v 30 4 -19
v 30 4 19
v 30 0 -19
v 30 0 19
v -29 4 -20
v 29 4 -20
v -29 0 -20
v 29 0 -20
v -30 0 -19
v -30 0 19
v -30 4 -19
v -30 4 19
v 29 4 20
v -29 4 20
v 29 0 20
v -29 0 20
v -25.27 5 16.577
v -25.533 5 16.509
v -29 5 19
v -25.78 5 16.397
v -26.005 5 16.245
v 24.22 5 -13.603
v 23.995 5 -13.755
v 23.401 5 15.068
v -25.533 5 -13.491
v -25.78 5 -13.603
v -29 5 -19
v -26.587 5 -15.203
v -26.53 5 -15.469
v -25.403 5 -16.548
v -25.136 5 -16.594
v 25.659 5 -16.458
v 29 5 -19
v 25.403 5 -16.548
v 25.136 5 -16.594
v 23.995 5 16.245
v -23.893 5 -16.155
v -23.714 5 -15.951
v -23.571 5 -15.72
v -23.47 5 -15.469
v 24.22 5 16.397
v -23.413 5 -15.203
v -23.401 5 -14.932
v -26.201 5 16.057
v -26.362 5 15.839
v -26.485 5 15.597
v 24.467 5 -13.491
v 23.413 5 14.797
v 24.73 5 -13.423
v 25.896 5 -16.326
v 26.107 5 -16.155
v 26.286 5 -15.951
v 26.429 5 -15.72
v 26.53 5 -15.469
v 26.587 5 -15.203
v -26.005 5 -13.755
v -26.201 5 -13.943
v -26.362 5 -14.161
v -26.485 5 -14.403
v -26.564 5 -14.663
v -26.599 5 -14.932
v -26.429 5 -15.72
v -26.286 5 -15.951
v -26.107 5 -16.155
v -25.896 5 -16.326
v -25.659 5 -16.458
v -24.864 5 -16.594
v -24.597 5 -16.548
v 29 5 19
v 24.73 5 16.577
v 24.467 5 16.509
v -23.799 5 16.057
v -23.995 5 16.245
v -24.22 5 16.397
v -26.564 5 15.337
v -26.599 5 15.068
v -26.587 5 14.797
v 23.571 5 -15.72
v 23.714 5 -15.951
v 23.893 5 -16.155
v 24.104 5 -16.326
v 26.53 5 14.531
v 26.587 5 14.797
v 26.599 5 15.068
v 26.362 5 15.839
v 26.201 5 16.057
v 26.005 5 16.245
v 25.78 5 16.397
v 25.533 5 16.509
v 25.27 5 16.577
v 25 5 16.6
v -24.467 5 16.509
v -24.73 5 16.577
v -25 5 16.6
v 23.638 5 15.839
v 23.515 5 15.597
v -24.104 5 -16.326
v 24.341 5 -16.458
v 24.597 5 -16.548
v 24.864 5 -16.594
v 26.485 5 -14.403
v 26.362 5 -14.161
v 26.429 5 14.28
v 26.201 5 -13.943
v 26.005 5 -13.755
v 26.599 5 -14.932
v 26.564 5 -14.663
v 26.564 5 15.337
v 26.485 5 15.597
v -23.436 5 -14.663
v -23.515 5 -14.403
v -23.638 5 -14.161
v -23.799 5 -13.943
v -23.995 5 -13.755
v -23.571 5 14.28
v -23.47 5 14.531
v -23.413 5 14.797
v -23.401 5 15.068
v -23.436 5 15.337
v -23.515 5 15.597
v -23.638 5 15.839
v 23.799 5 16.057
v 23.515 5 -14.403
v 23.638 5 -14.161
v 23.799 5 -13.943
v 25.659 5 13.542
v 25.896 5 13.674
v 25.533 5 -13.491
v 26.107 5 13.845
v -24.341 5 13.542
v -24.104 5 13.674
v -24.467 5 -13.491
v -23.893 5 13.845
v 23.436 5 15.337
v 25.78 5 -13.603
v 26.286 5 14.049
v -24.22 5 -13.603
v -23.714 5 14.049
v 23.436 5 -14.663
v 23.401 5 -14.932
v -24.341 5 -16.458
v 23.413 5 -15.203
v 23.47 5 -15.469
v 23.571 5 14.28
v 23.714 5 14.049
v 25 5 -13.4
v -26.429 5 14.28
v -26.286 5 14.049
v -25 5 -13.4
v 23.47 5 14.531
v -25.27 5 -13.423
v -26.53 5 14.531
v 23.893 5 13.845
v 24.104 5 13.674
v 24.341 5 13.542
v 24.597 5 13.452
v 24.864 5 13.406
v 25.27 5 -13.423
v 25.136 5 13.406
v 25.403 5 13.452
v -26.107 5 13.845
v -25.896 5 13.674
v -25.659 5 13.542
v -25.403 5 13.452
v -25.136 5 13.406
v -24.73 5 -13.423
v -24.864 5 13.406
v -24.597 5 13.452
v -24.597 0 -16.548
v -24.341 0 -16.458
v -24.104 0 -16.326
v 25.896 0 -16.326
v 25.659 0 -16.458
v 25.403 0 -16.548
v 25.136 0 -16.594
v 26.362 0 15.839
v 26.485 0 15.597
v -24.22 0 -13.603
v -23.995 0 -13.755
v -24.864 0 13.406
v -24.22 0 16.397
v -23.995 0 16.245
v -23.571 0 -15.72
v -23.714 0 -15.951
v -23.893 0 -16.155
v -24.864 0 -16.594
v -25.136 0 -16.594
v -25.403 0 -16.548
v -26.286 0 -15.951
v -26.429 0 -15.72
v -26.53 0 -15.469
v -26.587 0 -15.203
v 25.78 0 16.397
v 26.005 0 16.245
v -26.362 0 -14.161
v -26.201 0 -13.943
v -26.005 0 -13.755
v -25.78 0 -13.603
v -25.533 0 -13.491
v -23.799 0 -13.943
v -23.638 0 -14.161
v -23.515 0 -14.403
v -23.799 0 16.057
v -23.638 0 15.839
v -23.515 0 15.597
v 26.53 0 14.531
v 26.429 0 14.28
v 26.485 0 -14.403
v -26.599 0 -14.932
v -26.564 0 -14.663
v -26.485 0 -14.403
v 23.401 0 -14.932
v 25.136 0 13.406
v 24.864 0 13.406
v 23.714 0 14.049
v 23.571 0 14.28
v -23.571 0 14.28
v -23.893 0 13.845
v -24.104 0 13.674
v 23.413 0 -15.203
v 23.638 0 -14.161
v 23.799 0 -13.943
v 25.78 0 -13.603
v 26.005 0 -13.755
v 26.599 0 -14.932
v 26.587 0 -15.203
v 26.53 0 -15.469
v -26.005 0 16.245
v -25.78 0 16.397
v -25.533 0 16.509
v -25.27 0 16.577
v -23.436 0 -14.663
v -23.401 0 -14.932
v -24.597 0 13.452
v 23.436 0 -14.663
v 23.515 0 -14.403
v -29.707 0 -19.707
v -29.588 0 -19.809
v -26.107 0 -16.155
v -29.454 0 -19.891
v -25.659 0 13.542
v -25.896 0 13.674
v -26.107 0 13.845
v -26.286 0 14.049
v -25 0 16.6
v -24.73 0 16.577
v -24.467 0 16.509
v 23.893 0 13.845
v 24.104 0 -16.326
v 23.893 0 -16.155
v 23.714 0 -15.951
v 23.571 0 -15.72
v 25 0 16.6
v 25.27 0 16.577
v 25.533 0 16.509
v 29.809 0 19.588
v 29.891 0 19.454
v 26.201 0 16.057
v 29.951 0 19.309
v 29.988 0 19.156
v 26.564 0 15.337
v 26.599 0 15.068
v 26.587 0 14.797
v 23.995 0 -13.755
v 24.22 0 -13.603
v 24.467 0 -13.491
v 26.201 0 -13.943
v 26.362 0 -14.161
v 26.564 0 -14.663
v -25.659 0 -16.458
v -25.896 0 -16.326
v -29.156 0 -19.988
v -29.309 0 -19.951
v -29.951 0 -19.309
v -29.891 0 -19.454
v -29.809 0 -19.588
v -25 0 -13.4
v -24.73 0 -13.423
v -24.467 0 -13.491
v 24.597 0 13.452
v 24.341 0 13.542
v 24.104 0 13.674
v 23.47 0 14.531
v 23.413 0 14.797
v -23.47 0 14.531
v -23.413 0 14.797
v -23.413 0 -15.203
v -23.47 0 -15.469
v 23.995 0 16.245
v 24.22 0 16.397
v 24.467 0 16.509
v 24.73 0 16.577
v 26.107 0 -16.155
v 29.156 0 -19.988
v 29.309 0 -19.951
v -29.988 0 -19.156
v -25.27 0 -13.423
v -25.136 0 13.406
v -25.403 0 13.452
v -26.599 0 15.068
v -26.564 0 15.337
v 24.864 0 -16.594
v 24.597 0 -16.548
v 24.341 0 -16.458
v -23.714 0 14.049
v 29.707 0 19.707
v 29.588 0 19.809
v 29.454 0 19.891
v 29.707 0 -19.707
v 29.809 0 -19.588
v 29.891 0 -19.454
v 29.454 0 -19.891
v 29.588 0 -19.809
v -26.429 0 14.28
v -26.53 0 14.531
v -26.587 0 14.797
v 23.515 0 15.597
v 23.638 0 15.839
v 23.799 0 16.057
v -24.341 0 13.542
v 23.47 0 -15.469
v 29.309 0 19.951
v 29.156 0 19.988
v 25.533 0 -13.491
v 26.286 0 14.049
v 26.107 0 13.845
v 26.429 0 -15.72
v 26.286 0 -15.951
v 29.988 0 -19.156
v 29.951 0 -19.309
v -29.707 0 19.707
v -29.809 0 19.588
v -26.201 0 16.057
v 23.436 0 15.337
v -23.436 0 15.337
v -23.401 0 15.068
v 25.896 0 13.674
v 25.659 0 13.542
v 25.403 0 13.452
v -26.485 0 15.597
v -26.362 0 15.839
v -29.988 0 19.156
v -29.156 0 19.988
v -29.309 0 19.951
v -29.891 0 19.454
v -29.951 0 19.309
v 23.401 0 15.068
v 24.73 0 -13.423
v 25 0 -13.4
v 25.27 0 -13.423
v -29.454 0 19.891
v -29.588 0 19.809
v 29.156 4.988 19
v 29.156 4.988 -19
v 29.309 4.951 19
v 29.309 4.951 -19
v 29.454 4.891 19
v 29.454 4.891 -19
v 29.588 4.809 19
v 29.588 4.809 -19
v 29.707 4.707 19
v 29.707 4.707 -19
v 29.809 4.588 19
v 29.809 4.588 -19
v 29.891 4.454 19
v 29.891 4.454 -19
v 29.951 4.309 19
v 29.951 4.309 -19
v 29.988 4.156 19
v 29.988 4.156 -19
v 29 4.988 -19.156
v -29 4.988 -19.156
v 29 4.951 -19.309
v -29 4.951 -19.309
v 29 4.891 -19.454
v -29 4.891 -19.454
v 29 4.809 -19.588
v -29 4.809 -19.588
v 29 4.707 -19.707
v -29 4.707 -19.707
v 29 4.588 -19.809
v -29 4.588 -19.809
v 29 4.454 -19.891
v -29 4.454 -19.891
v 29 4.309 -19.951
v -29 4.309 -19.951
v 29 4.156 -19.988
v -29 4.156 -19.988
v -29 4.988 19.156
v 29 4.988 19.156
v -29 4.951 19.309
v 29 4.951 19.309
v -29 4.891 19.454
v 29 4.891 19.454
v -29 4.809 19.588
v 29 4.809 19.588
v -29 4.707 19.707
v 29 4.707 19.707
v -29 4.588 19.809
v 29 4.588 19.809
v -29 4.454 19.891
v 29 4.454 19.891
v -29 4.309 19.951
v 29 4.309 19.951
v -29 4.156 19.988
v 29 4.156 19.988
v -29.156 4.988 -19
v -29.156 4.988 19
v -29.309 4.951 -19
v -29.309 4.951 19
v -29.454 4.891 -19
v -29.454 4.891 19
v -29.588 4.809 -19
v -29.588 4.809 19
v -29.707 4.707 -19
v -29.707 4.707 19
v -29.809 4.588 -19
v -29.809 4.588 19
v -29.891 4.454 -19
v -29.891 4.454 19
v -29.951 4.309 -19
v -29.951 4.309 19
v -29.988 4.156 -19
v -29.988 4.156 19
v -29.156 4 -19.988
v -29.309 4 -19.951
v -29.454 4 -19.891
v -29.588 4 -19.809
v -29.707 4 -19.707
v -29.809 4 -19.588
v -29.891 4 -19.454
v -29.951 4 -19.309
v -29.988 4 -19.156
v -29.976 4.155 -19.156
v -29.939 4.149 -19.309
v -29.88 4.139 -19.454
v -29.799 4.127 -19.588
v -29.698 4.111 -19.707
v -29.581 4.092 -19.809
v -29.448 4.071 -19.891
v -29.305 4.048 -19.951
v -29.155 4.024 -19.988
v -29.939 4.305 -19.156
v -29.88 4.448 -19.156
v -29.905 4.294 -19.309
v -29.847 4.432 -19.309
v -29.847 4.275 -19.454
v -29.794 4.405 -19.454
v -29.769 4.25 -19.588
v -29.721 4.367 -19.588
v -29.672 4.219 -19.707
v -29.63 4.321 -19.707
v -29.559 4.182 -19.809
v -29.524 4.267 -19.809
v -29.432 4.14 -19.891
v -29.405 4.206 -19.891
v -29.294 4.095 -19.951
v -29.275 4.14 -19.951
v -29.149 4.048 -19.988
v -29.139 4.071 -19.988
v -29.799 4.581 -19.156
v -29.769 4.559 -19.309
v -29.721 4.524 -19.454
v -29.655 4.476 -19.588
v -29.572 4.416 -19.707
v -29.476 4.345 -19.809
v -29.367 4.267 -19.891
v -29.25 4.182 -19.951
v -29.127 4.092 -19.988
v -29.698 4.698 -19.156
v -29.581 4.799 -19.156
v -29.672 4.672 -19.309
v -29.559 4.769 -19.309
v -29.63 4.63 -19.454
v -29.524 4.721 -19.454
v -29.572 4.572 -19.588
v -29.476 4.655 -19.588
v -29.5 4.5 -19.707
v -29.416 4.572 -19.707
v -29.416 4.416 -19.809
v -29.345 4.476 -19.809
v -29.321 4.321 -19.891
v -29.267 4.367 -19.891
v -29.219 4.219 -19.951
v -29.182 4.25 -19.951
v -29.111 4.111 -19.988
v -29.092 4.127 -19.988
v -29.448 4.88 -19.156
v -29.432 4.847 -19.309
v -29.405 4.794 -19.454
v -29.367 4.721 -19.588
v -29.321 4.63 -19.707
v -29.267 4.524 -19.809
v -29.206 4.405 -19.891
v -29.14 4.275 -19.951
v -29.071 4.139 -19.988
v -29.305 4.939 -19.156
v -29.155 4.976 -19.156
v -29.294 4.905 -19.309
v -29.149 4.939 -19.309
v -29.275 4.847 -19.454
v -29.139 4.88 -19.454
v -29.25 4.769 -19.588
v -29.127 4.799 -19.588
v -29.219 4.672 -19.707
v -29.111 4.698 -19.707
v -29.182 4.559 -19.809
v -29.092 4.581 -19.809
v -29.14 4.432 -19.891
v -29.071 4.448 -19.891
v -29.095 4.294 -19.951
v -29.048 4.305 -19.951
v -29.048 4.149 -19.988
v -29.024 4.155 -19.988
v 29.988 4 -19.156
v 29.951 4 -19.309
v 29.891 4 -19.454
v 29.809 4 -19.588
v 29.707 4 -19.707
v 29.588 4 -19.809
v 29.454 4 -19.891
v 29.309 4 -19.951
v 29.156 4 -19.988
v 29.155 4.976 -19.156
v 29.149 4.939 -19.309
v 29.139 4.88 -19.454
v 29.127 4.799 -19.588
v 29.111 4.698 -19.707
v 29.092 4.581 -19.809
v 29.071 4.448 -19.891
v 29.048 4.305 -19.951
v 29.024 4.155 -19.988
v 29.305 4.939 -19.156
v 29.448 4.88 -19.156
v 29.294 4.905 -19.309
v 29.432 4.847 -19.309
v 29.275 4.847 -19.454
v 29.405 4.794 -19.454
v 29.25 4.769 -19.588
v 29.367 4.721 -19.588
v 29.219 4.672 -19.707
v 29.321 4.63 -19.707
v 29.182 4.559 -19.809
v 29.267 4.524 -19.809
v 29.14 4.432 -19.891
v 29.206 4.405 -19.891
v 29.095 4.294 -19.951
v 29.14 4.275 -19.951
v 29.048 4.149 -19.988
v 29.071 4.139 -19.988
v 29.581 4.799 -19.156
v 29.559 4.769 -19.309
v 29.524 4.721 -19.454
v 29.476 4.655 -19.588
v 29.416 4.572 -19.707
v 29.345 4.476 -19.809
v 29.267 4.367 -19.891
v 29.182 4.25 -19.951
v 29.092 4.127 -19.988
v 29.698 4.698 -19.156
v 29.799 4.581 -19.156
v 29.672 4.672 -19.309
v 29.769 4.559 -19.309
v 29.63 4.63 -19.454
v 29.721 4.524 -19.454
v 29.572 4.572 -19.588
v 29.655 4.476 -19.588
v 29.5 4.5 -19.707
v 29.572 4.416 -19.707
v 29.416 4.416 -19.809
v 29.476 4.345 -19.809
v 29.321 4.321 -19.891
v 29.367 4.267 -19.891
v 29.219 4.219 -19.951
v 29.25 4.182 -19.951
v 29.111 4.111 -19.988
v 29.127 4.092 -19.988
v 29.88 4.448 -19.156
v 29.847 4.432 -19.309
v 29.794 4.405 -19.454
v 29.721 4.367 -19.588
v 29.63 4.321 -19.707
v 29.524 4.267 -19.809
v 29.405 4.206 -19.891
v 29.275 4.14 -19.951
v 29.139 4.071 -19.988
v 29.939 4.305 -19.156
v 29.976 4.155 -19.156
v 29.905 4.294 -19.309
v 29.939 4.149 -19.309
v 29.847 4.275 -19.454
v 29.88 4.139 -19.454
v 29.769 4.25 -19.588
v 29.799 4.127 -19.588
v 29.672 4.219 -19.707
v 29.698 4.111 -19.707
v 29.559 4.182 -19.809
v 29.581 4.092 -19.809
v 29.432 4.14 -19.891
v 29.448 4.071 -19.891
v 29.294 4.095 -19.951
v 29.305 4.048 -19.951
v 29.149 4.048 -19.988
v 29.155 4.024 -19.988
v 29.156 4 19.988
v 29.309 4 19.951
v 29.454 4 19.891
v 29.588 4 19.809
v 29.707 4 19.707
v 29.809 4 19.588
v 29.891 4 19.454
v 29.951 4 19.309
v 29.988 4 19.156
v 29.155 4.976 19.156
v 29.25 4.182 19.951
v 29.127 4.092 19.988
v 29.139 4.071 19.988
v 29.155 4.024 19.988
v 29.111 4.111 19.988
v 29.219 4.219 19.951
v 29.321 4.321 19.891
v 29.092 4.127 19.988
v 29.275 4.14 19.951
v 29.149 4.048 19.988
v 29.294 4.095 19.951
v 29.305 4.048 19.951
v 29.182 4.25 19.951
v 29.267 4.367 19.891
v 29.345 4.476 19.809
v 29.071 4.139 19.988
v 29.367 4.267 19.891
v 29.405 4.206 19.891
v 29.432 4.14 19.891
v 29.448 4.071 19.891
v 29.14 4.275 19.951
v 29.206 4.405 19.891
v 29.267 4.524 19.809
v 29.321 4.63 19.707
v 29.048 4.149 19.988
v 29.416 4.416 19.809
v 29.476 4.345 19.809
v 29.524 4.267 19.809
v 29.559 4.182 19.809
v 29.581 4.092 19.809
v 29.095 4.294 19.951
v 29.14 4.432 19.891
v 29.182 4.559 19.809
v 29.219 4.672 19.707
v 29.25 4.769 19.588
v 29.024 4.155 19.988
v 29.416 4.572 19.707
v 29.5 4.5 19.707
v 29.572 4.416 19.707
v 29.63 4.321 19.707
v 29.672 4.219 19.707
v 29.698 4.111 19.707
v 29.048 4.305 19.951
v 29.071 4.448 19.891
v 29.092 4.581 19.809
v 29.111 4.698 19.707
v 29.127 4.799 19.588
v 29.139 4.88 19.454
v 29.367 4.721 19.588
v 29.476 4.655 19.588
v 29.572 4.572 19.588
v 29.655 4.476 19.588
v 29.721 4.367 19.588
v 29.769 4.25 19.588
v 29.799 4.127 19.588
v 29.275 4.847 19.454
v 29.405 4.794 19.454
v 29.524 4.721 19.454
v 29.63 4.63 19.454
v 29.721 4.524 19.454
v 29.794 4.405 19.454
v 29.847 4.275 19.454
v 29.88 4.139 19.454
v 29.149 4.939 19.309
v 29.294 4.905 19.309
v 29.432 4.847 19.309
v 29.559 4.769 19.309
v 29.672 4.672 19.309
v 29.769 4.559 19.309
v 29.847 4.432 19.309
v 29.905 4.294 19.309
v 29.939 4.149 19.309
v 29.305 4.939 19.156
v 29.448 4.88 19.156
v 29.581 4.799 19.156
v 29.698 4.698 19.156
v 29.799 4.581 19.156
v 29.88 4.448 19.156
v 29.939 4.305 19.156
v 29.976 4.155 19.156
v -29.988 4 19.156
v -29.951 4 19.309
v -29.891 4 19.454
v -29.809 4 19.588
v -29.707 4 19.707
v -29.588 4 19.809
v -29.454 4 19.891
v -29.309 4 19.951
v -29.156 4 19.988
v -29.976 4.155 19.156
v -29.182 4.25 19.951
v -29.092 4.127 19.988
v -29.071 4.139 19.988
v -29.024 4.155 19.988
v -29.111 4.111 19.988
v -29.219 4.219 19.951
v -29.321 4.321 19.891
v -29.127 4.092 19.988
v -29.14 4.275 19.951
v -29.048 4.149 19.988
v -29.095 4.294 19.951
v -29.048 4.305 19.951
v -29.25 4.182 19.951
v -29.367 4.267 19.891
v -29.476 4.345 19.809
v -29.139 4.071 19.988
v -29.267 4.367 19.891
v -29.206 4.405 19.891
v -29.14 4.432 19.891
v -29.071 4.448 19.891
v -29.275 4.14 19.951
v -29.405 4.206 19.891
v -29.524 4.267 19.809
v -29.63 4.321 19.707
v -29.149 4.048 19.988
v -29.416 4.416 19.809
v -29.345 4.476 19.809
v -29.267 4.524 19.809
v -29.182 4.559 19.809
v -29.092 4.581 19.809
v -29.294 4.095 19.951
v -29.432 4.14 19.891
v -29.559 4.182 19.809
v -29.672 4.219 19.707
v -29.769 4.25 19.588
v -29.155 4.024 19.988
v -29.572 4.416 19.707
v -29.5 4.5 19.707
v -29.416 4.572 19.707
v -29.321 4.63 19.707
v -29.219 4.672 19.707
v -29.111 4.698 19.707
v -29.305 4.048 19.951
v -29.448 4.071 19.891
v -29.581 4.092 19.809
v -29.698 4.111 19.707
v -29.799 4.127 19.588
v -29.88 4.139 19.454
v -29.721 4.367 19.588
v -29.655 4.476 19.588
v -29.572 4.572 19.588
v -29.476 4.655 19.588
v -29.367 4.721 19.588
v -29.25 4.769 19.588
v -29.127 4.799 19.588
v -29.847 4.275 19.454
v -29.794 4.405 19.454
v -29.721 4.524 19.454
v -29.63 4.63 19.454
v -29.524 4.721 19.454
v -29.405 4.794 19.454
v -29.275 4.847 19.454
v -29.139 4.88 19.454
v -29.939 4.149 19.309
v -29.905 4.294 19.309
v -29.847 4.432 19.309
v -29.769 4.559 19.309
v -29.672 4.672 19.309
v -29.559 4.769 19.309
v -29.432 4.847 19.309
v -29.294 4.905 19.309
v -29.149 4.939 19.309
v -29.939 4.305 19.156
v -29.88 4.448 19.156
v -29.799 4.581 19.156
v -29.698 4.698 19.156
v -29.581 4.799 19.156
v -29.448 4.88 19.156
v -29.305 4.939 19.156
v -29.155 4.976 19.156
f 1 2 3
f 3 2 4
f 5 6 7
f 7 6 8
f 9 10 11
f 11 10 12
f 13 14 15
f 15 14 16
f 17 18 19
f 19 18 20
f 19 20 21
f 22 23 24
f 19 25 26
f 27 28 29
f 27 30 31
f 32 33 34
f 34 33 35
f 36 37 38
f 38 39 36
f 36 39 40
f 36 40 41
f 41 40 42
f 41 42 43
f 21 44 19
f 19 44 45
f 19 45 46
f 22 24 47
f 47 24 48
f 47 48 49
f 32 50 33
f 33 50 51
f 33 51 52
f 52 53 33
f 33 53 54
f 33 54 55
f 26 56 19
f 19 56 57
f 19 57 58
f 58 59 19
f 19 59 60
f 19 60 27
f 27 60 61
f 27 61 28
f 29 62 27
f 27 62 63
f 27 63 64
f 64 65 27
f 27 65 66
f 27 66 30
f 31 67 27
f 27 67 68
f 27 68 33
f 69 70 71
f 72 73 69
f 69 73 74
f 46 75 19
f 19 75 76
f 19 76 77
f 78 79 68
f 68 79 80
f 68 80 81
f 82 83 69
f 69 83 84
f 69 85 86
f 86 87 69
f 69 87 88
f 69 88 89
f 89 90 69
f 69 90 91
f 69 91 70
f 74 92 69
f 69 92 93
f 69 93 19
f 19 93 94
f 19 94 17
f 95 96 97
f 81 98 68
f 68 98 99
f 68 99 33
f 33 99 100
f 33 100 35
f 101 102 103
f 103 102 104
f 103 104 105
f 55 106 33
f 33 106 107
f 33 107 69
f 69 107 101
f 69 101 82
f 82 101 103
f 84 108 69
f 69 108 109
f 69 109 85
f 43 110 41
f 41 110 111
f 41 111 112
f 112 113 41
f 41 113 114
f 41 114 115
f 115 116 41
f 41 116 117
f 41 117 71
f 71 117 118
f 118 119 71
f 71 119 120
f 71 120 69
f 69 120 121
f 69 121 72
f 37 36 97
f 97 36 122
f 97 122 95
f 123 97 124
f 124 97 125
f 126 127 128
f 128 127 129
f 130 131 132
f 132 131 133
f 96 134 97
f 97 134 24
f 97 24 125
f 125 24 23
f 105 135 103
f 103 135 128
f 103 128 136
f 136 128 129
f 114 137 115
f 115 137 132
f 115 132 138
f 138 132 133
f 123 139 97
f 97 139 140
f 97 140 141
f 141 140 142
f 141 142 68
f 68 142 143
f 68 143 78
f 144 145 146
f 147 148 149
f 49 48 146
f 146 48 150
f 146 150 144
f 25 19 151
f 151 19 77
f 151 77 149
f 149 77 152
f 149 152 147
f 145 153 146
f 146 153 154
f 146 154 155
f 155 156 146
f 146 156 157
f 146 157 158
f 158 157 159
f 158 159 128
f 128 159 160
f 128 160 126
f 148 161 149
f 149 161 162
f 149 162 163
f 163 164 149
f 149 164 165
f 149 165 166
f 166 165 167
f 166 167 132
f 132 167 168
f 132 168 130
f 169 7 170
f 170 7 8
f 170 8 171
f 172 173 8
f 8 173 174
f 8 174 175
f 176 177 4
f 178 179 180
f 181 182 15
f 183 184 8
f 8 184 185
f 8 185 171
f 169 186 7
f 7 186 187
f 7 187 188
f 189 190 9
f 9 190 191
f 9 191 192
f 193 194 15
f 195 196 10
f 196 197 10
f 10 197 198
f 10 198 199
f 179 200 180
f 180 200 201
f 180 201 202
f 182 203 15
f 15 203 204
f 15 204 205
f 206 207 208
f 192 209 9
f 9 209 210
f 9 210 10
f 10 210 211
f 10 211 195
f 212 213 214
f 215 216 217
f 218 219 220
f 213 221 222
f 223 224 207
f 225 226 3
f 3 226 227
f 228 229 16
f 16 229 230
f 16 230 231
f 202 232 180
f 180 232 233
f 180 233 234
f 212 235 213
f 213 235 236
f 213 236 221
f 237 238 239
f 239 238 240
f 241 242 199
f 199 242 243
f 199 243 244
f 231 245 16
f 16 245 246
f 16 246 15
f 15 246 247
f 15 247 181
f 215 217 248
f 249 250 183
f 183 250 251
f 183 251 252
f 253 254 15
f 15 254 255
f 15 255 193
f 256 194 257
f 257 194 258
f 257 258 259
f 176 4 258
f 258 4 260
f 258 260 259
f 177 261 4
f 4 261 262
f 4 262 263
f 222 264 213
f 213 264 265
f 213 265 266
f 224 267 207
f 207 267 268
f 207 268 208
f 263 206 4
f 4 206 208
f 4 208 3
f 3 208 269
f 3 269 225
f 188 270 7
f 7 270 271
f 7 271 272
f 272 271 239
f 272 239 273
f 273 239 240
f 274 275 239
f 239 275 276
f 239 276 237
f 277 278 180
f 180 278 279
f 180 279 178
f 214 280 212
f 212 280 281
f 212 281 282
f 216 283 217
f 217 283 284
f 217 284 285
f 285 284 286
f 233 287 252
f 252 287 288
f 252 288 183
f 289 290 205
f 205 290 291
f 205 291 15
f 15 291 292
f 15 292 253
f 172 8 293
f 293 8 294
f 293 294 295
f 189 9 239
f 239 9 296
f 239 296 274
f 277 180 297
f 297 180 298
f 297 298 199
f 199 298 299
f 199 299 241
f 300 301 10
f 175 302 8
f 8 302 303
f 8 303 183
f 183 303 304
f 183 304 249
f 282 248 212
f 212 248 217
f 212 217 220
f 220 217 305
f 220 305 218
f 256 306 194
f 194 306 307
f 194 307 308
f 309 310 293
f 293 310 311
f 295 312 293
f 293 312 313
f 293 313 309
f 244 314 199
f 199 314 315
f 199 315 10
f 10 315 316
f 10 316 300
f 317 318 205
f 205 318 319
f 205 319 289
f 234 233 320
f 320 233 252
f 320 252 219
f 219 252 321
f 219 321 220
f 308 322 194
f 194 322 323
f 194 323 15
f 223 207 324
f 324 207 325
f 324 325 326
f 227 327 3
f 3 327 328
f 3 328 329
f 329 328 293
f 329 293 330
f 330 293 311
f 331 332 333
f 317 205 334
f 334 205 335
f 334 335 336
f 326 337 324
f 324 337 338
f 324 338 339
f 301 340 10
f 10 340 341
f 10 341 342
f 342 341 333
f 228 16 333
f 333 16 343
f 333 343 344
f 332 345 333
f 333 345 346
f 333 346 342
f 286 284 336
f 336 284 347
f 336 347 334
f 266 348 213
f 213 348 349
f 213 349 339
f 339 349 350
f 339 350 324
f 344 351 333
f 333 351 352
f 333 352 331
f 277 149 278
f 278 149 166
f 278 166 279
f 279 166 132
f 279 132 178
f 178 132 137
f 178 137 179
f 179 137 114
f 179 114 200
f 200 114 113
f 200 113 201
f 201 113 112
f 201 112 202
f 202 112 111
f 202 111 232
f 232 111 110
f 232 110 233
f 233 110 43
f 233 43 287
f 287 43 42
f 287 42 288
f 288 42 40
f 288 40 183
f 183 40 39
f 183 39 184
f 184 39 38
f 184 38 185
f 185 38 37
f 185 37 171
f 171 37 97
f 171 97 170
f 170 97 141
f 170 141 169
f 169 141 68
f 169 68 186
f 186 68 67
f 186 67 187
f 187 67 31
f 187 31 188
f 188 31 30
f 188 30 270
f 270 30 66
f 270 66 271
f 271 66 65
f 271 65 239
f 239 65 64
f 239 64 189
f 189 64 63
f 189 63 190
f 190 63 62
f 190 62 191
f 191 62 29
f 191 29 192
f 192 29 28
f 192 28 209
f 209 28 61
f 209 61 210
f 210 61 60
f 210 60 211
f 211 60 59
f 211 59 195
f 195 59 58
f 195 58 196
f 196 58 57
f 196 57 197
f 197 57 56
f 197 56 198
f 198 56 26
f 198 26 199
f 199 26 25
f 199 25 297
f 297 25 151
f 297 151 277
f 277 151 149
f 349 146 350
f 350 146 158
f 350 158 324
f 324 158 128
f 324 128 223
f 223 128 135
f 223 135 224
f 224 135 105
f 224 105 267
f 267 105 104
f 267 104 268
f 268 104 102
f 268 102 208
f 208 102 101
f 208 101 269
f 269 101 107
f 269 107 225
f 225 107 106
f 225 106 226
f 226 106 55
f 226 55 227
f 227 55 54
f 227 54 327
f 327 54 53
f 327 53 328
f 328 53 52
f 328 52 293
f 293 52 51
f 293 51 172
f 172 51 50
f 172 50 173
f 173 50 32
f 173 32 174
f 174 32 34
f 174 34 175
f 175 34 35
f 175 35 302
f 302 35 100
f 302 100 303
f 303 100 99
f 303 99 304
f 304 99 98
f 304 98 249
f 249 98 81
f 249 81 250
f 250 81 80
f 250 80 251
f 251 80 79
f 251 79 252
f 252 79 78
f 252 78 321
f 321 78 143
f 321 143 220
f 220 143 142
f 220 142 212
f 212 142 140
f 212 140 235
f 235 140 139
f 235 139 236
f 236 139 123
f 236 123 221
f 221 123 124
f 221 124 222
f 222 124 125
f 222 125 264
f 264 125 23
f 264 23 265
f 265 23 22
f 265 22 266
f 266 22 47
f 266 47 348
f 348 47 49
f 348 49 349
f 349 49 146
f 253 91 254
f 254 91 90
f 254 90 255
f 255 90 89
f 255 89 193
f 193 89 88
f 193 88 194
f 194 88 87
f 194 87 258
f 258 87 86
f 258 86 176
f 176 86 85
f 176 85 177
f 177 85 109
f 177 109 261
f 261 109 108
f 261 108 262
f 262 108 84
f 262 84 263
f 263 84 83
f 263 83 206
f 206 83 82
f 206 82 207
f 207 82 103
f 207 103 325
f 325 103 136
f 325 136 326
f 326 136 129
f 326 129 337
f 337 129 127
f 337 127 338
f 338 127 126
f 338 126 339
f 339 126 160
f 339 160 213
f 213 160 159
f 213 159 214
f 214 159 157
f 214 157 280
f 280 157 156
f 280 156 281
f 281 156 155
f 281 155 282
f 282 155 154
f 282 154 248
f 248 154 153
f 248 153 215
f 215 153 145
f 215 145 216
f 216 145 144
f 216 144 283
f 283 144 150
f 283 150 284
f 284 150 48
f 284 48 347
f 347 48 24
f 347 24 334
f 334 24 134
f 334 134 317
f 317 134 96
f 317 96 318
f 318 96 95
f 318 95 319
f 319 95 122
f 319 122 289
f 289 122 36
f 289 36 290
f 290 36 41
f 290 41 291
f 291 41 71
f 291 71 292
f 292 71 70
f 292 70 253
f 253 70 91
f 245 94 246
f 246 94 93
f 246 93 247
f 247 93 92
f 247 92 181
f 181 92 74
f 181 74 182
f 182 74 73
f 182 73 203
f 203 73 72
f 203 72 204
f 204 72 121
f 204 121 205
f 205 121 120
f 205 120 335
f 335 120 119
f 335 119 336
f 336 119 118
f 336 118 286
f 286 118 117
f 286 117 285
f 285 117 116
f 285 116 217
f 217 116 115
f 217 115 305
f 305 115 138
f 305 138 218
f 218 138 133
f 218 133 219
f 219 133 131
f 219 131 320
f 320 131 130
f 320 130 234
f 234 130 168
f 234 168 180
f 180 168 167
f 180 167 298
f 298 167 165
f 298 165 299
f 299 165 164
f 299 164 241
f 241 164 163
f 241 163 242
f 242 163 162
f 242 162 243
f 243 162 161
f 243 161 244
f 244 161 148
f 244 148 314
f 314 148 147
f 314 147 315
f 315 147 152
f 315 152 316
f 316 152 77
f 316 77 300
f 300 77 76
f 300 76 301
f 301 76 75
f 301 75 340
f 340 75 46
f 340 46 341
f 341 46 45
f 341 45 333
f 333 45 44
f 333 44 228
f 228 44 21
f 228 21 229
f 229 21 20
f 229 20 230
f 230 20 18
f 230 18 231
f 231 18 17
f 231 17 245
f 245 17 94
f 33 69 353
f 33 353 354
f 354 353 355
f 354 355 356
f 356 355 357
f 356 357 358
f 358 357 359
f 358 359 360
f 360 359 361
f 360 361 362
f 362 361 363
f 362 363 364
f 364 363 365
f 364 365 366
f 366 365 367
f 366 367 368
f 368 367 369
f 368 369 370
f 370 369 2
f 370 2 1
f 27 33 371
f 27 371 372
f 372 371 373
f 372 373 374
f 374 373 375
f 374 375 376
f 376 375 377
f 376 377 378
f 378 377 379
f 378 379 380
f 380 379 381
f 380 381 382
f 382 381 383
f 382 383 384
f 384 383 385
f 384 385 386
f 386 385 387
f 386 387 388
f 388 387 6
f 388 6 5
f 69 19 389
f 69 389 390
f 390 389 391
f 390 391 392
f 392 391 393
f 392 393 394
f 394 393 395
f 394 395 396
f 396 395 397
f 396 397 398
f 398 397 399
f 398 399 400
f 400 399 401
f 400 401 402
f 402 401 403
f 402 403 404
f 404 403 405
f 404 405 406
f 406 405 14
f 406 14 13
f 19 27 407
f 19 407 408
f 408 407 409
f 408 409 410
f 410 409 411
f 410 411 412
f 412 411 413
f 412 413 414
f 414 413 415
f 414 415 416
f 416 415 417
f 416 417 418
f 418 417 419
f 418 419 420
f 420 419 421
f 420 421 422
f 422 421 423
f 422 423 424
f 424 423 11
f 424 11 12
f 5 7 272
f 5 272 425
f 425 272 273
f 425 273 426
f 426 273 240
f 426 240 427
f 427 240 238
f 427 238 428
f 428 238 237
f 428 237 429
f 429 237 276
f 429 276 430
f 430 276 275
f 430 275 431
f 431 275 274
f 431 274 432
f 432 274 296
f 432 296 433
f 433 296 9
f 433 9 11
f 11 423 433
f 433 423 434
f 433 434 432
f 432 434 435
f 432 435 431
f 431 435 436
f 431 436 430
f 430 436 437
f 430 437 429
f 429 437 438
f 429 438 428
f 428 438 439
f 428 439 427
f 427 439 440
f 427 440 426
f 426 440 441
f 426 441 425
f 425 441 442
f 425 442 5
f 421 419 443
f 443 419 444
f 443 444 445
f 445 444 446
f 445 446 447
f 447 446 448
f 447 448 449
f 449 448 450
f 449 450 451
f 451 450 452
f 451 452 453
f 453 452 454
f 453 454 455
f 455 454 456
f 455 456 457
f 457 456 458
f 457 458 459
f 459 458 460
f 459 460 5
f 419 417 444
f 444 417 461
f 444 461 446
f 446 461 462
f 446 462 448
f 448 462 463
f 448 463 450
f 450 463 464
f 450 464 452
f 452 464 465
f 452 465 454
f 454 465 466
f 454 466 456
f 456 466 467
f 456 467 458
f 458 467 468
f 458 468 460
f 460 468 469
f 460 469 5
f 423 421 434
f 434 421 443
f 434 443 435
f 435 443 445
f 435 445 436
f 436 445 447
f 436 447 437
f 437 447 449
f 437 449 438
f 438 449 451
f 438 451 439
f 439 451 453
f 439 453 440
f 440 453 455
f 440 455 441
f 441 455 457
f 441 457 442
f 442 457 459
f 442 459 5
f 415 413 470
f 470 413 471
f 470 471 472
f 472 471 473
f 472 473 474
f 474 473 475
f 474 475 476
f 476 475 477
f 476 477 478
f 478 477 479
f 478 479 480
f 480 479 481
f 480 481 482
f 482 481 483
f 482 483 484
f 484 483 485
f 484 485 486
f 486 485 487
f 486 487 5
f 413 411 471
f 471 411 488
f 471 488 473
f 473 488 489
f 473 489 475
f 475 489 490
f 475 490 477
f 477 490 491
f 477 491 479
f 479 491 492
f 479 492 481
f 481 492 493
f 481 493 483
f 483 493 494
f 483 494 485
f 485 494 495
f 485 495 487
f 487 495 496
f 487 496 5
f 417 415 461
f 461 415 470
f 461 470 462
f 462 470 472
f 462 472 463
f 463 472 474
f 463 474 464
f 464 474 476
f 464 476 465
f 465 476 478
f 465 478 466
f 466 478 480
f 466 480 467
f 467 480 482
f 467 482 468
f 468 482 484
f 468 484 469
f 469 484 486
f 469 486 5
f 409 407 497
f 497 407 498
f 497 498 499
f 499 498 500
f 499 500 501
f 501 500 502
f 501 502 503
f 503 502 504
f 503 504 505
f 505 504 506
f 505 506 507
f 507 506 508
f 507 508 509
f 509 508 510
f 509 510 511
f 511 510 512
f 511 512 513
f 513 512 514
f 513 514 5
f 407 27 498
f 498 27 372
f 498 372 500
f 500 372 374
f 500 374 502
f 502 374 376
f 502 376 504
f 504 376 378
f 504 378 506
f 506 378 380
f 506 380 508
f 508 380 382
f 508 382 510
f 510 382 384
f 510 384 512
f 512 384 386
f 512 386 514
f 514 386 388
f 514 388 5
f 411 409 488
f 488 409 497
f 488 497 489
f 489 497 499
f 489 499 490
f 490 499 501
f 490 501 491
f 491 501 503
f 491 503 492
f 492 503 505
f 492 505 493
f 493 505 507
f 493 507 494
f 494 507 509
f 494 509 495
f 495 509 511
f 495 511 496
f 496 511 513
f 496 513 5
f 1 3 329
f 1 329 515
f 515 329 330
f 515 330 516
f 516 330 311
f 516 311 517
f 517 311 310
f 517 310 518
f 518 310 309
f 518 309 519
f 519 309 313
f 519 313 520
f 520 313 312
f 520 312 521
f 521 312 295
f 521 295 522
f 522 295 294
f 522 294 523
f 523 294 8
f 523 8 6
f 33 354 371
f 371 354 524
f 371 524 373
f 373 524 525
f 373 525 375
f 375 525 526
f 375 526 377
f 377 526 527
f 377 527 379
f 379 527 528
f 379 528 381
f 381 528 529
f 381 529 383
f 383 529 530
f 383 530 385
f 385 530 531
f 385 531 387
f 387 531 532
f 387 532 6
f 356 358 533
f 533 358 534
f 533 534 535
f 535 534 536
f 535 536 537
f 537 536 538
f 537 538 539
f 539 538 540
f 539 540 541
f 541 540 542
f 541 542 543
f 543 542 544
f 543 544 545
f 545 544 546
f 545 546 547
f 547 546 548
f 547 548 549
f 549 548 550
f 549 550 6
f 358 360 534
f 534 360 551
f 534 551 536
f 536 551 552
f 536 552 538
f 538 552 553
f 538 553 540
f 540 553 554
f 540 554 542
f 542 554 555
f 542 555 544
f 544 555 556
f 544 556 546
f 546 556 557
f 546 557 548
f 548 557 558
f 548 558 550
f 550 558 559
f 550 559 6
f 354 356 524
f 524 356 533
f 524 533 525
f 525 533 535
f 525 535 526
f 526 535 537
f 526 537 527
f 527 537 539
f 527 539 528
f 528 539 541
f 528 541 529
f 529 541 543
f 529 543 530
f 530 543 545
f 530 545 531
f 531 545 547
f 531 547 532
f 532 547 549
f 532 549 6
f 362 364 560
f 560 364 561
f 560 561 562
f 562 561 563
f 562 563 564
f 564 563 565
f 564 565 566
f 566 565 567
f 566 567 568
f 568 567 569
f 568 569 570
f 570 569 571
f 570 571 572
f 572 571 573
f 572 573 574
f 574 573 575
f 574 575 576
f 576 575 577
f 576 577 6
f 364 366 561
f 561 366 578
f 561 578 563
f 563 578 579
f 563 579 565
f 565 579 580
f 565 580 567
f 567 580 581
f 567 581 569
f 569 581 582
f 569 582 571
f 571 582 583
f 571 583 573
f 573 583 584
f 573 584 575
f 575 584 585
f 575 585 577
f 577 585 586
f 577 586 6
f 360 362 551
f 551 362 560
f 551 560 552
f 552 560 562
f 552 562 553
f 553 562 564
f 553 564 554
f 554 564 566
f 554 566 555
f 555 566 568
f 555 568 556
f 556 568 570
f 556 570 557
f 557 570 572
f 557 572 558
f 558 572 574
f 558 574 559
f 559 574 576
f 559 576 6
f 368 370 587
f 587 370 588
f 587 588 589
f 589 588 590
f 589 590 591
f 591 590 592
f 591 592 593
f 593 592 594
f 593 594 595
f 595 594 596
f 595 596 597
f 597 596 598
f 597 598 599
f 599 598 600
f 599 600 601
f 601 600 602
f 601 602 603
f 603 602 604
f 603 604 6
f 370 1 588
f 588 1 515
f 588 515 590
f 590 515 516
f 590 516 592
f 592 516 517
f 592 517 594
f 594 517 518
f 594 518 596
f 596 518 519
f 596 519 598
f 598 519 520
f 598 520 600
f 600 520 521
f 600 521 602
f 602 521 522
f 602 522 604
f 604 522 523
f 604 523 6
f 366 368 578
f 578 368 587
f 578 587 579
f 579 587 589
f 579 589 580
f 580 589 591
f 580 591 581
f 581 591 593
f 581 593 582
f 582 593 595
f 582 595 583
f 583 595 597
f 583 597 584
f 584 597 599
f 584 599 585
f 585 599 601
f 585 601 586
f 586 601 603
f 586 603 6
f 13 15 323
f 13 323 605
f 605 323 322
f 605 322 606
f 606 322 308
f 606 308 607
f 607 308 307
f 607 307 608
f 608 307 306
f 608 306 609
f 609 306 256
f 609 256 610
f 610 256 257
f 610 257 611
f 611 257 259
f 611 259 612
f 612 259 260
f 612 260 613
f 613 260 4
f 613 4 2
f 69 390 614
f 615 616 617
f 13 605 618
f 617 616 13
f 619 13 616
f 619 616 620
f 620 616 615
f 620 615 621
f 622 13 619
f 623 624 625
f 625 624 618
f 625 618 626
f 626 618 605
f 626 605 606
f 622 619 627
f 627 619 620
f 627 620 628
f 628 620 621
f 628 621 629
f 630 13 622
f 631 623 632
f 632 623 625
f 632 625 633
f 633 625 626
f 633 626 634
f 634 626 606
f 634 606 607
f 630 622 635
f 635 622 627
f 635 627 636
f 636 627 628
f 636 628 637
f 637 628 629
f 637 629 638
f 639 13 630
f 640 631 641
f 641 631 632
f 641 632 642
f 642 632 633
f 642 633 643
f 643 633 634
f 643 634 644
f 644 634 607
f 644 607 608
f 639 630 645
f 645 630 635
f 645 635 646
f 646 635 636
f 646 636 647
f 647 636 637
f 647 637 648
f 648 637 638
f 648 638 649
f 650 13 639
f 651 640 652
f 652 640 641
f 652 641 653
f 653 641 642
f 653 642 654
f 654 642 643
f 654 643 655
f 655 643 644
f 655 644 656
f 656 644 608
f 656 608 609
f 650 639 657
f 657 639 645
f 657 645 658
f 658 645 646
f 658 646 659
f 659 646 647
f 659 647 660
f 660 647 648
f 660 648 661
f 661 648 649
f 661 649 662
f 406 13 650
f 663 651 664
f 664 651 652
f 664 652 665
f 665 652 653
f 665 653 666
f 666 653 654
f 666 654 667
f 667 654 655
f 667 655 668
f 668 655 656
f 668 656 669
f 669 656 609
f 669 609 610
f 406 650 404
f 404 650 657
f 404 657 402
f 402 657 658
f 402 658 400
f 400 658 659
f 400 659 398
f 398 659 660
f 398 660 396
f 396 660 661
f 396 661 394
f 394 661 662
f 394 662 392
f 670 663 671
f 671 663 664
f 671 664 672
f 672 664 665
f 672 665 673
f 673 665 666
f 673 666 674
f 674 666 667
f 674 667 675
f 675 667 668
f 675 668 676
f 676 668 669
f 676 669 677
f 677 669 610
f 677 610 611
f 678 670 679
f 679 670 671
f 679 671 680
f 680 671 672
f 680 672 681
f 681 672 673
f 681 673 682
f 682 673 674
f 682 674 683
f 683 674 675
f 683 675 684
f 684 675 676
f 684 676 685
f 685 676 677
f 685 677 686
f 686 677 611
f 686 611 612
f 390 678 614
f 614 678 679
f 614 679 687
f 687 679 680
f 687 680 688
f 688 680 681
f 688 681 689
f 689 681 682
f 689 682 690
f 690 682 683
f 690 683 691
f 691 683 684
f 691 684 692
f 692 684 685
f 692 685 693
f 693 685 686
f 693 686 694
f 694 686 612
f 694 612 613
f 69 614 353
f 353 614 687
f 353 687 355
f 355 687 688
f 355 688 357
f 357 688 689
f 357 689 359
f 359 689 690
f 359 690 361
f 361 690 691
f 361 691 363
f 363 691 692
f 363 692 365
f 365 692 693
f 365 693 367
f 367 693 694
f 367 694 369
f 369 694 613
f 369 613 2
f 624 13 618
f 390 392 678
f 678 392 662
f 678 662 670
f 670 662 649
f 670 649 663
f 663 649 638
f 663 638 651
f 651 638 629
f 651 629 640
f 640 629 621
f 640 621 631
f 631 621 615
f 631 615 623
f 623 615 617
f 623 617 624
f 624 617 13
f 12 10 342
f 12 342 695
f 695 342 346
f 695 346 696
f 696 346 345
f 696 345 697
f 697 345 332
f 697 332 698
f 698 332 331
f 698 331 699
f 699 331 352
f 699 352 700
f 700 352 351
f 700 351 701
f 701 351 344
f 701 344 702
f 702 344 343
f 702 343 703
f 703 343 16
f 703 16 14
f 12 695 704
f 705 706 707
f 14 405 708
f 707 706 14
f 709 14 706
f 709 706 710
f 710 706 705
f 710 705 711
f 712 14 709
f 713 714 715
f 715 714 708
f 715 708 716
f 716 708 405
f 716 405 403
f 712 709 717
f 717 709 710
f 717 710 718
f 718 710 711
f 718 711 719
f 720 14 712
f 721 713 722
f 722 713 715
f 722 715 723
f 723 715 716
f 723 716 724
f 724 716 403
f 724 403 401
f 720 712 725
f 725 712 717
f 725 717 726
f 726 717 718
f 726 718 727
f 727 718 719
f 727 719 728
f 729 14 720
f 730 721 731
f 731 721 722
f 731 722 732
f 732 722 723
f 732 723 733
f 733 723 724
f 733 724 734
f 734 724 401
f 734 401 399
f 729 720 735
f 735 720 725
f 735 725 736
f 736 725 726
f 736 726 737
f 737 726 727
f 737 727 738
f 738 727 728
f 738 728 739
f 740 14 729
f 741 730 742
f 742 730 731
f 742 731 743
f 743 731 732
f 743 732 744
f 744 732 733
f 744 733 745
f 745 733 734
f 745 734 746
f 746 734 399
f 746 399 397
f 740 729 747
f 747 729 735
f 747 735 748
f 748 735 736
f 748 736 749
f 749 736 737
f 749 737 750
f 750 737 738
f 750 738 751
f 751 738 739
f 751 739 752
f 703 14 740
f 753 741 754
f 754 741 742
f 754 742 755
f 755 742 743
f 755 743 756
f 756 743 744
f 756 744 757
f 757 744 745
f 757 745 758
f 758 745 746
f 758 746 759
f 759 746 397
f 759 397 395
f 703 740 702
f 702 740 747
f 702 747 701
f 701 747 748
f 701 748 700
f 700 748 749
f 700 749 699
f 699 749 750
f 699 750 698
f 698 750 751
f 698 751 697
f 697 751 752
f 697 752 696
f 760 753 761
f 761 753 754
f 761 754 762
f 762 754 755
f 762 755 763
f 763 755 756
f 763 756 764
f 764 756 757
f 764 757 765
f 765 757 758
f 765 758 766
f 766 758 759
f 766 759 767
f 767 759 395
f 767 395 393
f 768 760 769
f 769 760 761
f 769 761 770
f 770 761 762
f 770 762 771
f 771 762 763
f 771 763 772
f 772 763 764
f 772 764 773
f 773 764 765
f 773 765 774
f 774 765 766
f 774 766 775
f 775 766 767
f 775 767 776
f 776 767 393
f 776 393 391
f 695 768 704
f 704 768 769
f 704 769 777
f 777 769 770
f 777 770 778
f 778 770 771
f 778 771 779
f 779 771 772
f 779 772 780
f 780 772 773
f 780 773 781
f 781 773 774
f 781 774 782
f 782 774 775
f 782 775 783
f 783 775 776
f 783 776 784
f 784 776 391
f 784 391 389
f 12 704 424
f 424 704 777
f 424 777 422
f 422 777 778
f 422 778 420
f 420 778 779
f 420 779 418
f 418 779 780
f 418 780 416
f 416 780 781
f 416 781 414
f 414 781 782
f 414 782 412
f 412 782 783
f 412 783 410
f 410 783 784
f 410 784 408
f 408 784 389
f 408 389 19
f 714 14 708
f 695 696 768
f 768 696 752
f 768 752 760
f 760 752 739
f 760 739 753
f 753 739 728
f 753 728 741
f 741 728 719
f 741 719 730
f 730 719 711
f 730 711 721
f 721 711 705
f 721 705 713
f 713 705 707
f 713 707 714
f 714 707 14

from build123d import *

# Parameters (mm, degrees)
SKETCH1_W           = 60
SKETCH1_H           = 40
BOSS_EXTRUDE1_DEPTH = 5
SKETCH2_R           = 1.6
CUT_EXTRUDE1_DEPTH  = 5
FILLET1_R           = 1
FILLET2_R           = 1


with BuildPart() as part:
    # Sketch1 → Boss-Extrude1 (new body)
    with BuildSketch(Plane(origin=(0, 0, 0), x_dir=(1, 0, 0), z_dir=(0, 1, 0))):
        Rectangle(SKETCH1_W, SKETCH1_H)
    extrude(amount=BOSS_EXTRUDE1_DEPTH)

    # Sketch2 → Cut-Extrude1 (cut)
    with BuildSketch(Plane(origin=(0, 5, 0), x_dir=(1, 0, 0), z_dir=(0, 1, 0))):
        with Locations(Location((-25, 15, 0), (0, 0, 270))):
            Circle(SKETCH2_R)
        with Locations(Location((25, -15, 0), (0, 0, 270))):
            Circle(SKETCH2_R)
        with Locations(Location((-25, -15, 0), (0, 0, 270))):
            Circle(SKETCH2_R)
        with Locations(Location((25, 15, 0), (0, 0, 270))):
            Circle(SKETCH2_R)
    extrude(amount=-CUT_EXTRUDE1_DEPTH, mode=Mode.SUBTRACT)

    # Fillet1
    fillet1_edges = [part.edges().sort_by_distance(p)[0] for p in [
        (-30, 5, 0),
        (0, 5, 20),
        (30, 5, 0),
        (0, 5, -20),
    ]]
    fillet(fillet1_edges, radius=FILLET1_R)

    # Fillet2
    # the kernel refuses this fillet: 1 mm, written as the material it takes off along each edge
    with BuildSketch(Plane(origin=(29, 4, -19), x_dir=(1, 0, 0), z_dir=(0, 0, -1))) as fillet2_piece_1_section:
        Polygon((0, 0), (FILLET2_R, 0), (FILLET2_R, -FILLET2_R), (0, -FILLET2_R), align=None)
    fillet2_piece_1 = extrude(amount=FILLET2_R, mode=Mode.PRIVATE)
    fillet2_piece_1 = fillet2_piece_1 - Plane(origin=(29, 4, -19), x_dir=(-0.7071067811865475, -0.7071067811865475, 0), z_dir=(0, 0, -1)) * Sphere(FILLET2_R, mode=Mode.PRIVATE)
    add(fillet2_piece_1, mode=Mode.SUBTRACT)
    with BuildSketch(Plane(origin=(29, 4, 19), x_dir=(0, 0, 1), z_dir=(1, 0, 0))) as fillet2_piece_2_section:
        Polygon((0, 0), (FILLET2_R, 0), (FILLET2_R, -FILLET2_R), (0, -FILLET2_R), align=None)
    fillet2_piece_2 = extrude(amount=FILLET2_R, mode=Mode.PRIVATE)
    fillet2_piece_2 = fillet2_piece_2 - Plane(origin=(29, 4, 19), x_dir=(0, -0.7071067811865475, -0.7071067811865475), z_dir=(1, 0, 0)) * Sphere(FILLET2_R, mode=Mode.PRIVATE)
    add(fillet2_piece_2, mode=Mode.SUBTRACT)
    with BuildSketch(Plane(origin=(-29, 4, -19), x_dir=(-1, 0, 0), z_dir=(0, 0, -1))) as fillet2_piece_3_section:
        Polygon((0, 0), (FILLET2_R, 0), (FILLET2_R, FILLET2_R), (0, FILLET2_R), align=None)
    fillet2_piece_3 = extrude(amount=FILLET2_R, mode=Mode.PRIVATE)
    fillet2_piece_3 = fillet2_piece_3 - Plane(origin=(-29, 4, -19), x_dir=(0.7071067811865475, -0.7071067811865475, 0), z_dir=(0, 0, -1)) * Sphere(FILLET2_R, mode=Mode.PRIVATE)
    add(fillet2_piece_3, mode=Mode.SUBTRACT)
    with BuildSketch(Plane(origin=(-29, 4, 19), x_dir=(0, 0, 1), z_dir=(-1, 0, 0))) as fillet2_piece_4_section:
        Polygon((0, 0), (FILLET2_R, 0), (FILLET2_R, FILLET2_R), (0, FILLET2_R), align=None)
    fillet2_piece_4 = extrude(amount=FILLET2_R, mode=Mode.PRIVATE)
    fillet2_piece_4 = fillet2_piece_4 - Plane(origin=(-29, 4, 19), x_dir=(0, -0.7071067811865475, -0.7071067811865475), z_dir=(-1, 0, 0)) * Sphere(FILLET2_R, mode=Mode.PRIVATE)
    add(fillet2_piece_4, mode=Mode.SUBTRACT)
    with BuildSketch(Plane(origin=(-30, -2.5, 20), x_dir=(0, 0, -1), z_dir=(0, 1, 0)), Plane(origin=(-30, -2.5, -20), x_dir=(1, 0, 0), z_dir=(0, 1, 0))) as fillet2_piece_5:
        with BuildLine():
            CenterArc((FILLET2_R, -FILLET2_R), FILLET2_R, 90, 90)
            Line((0, -FILLET2_R), (0, 0))
            Line((0, 0), (FILLET2_R, 0))
        make_face()
    extrude(amount=6.5, mode=Mode.SUBTRACT)
    with BuildSketch(Plane(origin=(30, -2.5, -20), x_dir=(-1, 0, 0), z_dir=(0, 1, 0)), Plane(origin=(30, -2.5, 20), x_dir=(0, 0, -1), z_dir=(0, 1, 0))) as fillet2_piece_6:
        with BuildLine():
            CenterArc((FILLET2_R, FILLET2_R), FILLET2_R, 180, 90)
            Line((0, FILLET2_R), (0, 0))
            Line((0, 0), (FILLET2_R, 0))
        make_face()
    extrude(amount=6.5, mode=Mode.SUBTRACT)


solid = part.part
